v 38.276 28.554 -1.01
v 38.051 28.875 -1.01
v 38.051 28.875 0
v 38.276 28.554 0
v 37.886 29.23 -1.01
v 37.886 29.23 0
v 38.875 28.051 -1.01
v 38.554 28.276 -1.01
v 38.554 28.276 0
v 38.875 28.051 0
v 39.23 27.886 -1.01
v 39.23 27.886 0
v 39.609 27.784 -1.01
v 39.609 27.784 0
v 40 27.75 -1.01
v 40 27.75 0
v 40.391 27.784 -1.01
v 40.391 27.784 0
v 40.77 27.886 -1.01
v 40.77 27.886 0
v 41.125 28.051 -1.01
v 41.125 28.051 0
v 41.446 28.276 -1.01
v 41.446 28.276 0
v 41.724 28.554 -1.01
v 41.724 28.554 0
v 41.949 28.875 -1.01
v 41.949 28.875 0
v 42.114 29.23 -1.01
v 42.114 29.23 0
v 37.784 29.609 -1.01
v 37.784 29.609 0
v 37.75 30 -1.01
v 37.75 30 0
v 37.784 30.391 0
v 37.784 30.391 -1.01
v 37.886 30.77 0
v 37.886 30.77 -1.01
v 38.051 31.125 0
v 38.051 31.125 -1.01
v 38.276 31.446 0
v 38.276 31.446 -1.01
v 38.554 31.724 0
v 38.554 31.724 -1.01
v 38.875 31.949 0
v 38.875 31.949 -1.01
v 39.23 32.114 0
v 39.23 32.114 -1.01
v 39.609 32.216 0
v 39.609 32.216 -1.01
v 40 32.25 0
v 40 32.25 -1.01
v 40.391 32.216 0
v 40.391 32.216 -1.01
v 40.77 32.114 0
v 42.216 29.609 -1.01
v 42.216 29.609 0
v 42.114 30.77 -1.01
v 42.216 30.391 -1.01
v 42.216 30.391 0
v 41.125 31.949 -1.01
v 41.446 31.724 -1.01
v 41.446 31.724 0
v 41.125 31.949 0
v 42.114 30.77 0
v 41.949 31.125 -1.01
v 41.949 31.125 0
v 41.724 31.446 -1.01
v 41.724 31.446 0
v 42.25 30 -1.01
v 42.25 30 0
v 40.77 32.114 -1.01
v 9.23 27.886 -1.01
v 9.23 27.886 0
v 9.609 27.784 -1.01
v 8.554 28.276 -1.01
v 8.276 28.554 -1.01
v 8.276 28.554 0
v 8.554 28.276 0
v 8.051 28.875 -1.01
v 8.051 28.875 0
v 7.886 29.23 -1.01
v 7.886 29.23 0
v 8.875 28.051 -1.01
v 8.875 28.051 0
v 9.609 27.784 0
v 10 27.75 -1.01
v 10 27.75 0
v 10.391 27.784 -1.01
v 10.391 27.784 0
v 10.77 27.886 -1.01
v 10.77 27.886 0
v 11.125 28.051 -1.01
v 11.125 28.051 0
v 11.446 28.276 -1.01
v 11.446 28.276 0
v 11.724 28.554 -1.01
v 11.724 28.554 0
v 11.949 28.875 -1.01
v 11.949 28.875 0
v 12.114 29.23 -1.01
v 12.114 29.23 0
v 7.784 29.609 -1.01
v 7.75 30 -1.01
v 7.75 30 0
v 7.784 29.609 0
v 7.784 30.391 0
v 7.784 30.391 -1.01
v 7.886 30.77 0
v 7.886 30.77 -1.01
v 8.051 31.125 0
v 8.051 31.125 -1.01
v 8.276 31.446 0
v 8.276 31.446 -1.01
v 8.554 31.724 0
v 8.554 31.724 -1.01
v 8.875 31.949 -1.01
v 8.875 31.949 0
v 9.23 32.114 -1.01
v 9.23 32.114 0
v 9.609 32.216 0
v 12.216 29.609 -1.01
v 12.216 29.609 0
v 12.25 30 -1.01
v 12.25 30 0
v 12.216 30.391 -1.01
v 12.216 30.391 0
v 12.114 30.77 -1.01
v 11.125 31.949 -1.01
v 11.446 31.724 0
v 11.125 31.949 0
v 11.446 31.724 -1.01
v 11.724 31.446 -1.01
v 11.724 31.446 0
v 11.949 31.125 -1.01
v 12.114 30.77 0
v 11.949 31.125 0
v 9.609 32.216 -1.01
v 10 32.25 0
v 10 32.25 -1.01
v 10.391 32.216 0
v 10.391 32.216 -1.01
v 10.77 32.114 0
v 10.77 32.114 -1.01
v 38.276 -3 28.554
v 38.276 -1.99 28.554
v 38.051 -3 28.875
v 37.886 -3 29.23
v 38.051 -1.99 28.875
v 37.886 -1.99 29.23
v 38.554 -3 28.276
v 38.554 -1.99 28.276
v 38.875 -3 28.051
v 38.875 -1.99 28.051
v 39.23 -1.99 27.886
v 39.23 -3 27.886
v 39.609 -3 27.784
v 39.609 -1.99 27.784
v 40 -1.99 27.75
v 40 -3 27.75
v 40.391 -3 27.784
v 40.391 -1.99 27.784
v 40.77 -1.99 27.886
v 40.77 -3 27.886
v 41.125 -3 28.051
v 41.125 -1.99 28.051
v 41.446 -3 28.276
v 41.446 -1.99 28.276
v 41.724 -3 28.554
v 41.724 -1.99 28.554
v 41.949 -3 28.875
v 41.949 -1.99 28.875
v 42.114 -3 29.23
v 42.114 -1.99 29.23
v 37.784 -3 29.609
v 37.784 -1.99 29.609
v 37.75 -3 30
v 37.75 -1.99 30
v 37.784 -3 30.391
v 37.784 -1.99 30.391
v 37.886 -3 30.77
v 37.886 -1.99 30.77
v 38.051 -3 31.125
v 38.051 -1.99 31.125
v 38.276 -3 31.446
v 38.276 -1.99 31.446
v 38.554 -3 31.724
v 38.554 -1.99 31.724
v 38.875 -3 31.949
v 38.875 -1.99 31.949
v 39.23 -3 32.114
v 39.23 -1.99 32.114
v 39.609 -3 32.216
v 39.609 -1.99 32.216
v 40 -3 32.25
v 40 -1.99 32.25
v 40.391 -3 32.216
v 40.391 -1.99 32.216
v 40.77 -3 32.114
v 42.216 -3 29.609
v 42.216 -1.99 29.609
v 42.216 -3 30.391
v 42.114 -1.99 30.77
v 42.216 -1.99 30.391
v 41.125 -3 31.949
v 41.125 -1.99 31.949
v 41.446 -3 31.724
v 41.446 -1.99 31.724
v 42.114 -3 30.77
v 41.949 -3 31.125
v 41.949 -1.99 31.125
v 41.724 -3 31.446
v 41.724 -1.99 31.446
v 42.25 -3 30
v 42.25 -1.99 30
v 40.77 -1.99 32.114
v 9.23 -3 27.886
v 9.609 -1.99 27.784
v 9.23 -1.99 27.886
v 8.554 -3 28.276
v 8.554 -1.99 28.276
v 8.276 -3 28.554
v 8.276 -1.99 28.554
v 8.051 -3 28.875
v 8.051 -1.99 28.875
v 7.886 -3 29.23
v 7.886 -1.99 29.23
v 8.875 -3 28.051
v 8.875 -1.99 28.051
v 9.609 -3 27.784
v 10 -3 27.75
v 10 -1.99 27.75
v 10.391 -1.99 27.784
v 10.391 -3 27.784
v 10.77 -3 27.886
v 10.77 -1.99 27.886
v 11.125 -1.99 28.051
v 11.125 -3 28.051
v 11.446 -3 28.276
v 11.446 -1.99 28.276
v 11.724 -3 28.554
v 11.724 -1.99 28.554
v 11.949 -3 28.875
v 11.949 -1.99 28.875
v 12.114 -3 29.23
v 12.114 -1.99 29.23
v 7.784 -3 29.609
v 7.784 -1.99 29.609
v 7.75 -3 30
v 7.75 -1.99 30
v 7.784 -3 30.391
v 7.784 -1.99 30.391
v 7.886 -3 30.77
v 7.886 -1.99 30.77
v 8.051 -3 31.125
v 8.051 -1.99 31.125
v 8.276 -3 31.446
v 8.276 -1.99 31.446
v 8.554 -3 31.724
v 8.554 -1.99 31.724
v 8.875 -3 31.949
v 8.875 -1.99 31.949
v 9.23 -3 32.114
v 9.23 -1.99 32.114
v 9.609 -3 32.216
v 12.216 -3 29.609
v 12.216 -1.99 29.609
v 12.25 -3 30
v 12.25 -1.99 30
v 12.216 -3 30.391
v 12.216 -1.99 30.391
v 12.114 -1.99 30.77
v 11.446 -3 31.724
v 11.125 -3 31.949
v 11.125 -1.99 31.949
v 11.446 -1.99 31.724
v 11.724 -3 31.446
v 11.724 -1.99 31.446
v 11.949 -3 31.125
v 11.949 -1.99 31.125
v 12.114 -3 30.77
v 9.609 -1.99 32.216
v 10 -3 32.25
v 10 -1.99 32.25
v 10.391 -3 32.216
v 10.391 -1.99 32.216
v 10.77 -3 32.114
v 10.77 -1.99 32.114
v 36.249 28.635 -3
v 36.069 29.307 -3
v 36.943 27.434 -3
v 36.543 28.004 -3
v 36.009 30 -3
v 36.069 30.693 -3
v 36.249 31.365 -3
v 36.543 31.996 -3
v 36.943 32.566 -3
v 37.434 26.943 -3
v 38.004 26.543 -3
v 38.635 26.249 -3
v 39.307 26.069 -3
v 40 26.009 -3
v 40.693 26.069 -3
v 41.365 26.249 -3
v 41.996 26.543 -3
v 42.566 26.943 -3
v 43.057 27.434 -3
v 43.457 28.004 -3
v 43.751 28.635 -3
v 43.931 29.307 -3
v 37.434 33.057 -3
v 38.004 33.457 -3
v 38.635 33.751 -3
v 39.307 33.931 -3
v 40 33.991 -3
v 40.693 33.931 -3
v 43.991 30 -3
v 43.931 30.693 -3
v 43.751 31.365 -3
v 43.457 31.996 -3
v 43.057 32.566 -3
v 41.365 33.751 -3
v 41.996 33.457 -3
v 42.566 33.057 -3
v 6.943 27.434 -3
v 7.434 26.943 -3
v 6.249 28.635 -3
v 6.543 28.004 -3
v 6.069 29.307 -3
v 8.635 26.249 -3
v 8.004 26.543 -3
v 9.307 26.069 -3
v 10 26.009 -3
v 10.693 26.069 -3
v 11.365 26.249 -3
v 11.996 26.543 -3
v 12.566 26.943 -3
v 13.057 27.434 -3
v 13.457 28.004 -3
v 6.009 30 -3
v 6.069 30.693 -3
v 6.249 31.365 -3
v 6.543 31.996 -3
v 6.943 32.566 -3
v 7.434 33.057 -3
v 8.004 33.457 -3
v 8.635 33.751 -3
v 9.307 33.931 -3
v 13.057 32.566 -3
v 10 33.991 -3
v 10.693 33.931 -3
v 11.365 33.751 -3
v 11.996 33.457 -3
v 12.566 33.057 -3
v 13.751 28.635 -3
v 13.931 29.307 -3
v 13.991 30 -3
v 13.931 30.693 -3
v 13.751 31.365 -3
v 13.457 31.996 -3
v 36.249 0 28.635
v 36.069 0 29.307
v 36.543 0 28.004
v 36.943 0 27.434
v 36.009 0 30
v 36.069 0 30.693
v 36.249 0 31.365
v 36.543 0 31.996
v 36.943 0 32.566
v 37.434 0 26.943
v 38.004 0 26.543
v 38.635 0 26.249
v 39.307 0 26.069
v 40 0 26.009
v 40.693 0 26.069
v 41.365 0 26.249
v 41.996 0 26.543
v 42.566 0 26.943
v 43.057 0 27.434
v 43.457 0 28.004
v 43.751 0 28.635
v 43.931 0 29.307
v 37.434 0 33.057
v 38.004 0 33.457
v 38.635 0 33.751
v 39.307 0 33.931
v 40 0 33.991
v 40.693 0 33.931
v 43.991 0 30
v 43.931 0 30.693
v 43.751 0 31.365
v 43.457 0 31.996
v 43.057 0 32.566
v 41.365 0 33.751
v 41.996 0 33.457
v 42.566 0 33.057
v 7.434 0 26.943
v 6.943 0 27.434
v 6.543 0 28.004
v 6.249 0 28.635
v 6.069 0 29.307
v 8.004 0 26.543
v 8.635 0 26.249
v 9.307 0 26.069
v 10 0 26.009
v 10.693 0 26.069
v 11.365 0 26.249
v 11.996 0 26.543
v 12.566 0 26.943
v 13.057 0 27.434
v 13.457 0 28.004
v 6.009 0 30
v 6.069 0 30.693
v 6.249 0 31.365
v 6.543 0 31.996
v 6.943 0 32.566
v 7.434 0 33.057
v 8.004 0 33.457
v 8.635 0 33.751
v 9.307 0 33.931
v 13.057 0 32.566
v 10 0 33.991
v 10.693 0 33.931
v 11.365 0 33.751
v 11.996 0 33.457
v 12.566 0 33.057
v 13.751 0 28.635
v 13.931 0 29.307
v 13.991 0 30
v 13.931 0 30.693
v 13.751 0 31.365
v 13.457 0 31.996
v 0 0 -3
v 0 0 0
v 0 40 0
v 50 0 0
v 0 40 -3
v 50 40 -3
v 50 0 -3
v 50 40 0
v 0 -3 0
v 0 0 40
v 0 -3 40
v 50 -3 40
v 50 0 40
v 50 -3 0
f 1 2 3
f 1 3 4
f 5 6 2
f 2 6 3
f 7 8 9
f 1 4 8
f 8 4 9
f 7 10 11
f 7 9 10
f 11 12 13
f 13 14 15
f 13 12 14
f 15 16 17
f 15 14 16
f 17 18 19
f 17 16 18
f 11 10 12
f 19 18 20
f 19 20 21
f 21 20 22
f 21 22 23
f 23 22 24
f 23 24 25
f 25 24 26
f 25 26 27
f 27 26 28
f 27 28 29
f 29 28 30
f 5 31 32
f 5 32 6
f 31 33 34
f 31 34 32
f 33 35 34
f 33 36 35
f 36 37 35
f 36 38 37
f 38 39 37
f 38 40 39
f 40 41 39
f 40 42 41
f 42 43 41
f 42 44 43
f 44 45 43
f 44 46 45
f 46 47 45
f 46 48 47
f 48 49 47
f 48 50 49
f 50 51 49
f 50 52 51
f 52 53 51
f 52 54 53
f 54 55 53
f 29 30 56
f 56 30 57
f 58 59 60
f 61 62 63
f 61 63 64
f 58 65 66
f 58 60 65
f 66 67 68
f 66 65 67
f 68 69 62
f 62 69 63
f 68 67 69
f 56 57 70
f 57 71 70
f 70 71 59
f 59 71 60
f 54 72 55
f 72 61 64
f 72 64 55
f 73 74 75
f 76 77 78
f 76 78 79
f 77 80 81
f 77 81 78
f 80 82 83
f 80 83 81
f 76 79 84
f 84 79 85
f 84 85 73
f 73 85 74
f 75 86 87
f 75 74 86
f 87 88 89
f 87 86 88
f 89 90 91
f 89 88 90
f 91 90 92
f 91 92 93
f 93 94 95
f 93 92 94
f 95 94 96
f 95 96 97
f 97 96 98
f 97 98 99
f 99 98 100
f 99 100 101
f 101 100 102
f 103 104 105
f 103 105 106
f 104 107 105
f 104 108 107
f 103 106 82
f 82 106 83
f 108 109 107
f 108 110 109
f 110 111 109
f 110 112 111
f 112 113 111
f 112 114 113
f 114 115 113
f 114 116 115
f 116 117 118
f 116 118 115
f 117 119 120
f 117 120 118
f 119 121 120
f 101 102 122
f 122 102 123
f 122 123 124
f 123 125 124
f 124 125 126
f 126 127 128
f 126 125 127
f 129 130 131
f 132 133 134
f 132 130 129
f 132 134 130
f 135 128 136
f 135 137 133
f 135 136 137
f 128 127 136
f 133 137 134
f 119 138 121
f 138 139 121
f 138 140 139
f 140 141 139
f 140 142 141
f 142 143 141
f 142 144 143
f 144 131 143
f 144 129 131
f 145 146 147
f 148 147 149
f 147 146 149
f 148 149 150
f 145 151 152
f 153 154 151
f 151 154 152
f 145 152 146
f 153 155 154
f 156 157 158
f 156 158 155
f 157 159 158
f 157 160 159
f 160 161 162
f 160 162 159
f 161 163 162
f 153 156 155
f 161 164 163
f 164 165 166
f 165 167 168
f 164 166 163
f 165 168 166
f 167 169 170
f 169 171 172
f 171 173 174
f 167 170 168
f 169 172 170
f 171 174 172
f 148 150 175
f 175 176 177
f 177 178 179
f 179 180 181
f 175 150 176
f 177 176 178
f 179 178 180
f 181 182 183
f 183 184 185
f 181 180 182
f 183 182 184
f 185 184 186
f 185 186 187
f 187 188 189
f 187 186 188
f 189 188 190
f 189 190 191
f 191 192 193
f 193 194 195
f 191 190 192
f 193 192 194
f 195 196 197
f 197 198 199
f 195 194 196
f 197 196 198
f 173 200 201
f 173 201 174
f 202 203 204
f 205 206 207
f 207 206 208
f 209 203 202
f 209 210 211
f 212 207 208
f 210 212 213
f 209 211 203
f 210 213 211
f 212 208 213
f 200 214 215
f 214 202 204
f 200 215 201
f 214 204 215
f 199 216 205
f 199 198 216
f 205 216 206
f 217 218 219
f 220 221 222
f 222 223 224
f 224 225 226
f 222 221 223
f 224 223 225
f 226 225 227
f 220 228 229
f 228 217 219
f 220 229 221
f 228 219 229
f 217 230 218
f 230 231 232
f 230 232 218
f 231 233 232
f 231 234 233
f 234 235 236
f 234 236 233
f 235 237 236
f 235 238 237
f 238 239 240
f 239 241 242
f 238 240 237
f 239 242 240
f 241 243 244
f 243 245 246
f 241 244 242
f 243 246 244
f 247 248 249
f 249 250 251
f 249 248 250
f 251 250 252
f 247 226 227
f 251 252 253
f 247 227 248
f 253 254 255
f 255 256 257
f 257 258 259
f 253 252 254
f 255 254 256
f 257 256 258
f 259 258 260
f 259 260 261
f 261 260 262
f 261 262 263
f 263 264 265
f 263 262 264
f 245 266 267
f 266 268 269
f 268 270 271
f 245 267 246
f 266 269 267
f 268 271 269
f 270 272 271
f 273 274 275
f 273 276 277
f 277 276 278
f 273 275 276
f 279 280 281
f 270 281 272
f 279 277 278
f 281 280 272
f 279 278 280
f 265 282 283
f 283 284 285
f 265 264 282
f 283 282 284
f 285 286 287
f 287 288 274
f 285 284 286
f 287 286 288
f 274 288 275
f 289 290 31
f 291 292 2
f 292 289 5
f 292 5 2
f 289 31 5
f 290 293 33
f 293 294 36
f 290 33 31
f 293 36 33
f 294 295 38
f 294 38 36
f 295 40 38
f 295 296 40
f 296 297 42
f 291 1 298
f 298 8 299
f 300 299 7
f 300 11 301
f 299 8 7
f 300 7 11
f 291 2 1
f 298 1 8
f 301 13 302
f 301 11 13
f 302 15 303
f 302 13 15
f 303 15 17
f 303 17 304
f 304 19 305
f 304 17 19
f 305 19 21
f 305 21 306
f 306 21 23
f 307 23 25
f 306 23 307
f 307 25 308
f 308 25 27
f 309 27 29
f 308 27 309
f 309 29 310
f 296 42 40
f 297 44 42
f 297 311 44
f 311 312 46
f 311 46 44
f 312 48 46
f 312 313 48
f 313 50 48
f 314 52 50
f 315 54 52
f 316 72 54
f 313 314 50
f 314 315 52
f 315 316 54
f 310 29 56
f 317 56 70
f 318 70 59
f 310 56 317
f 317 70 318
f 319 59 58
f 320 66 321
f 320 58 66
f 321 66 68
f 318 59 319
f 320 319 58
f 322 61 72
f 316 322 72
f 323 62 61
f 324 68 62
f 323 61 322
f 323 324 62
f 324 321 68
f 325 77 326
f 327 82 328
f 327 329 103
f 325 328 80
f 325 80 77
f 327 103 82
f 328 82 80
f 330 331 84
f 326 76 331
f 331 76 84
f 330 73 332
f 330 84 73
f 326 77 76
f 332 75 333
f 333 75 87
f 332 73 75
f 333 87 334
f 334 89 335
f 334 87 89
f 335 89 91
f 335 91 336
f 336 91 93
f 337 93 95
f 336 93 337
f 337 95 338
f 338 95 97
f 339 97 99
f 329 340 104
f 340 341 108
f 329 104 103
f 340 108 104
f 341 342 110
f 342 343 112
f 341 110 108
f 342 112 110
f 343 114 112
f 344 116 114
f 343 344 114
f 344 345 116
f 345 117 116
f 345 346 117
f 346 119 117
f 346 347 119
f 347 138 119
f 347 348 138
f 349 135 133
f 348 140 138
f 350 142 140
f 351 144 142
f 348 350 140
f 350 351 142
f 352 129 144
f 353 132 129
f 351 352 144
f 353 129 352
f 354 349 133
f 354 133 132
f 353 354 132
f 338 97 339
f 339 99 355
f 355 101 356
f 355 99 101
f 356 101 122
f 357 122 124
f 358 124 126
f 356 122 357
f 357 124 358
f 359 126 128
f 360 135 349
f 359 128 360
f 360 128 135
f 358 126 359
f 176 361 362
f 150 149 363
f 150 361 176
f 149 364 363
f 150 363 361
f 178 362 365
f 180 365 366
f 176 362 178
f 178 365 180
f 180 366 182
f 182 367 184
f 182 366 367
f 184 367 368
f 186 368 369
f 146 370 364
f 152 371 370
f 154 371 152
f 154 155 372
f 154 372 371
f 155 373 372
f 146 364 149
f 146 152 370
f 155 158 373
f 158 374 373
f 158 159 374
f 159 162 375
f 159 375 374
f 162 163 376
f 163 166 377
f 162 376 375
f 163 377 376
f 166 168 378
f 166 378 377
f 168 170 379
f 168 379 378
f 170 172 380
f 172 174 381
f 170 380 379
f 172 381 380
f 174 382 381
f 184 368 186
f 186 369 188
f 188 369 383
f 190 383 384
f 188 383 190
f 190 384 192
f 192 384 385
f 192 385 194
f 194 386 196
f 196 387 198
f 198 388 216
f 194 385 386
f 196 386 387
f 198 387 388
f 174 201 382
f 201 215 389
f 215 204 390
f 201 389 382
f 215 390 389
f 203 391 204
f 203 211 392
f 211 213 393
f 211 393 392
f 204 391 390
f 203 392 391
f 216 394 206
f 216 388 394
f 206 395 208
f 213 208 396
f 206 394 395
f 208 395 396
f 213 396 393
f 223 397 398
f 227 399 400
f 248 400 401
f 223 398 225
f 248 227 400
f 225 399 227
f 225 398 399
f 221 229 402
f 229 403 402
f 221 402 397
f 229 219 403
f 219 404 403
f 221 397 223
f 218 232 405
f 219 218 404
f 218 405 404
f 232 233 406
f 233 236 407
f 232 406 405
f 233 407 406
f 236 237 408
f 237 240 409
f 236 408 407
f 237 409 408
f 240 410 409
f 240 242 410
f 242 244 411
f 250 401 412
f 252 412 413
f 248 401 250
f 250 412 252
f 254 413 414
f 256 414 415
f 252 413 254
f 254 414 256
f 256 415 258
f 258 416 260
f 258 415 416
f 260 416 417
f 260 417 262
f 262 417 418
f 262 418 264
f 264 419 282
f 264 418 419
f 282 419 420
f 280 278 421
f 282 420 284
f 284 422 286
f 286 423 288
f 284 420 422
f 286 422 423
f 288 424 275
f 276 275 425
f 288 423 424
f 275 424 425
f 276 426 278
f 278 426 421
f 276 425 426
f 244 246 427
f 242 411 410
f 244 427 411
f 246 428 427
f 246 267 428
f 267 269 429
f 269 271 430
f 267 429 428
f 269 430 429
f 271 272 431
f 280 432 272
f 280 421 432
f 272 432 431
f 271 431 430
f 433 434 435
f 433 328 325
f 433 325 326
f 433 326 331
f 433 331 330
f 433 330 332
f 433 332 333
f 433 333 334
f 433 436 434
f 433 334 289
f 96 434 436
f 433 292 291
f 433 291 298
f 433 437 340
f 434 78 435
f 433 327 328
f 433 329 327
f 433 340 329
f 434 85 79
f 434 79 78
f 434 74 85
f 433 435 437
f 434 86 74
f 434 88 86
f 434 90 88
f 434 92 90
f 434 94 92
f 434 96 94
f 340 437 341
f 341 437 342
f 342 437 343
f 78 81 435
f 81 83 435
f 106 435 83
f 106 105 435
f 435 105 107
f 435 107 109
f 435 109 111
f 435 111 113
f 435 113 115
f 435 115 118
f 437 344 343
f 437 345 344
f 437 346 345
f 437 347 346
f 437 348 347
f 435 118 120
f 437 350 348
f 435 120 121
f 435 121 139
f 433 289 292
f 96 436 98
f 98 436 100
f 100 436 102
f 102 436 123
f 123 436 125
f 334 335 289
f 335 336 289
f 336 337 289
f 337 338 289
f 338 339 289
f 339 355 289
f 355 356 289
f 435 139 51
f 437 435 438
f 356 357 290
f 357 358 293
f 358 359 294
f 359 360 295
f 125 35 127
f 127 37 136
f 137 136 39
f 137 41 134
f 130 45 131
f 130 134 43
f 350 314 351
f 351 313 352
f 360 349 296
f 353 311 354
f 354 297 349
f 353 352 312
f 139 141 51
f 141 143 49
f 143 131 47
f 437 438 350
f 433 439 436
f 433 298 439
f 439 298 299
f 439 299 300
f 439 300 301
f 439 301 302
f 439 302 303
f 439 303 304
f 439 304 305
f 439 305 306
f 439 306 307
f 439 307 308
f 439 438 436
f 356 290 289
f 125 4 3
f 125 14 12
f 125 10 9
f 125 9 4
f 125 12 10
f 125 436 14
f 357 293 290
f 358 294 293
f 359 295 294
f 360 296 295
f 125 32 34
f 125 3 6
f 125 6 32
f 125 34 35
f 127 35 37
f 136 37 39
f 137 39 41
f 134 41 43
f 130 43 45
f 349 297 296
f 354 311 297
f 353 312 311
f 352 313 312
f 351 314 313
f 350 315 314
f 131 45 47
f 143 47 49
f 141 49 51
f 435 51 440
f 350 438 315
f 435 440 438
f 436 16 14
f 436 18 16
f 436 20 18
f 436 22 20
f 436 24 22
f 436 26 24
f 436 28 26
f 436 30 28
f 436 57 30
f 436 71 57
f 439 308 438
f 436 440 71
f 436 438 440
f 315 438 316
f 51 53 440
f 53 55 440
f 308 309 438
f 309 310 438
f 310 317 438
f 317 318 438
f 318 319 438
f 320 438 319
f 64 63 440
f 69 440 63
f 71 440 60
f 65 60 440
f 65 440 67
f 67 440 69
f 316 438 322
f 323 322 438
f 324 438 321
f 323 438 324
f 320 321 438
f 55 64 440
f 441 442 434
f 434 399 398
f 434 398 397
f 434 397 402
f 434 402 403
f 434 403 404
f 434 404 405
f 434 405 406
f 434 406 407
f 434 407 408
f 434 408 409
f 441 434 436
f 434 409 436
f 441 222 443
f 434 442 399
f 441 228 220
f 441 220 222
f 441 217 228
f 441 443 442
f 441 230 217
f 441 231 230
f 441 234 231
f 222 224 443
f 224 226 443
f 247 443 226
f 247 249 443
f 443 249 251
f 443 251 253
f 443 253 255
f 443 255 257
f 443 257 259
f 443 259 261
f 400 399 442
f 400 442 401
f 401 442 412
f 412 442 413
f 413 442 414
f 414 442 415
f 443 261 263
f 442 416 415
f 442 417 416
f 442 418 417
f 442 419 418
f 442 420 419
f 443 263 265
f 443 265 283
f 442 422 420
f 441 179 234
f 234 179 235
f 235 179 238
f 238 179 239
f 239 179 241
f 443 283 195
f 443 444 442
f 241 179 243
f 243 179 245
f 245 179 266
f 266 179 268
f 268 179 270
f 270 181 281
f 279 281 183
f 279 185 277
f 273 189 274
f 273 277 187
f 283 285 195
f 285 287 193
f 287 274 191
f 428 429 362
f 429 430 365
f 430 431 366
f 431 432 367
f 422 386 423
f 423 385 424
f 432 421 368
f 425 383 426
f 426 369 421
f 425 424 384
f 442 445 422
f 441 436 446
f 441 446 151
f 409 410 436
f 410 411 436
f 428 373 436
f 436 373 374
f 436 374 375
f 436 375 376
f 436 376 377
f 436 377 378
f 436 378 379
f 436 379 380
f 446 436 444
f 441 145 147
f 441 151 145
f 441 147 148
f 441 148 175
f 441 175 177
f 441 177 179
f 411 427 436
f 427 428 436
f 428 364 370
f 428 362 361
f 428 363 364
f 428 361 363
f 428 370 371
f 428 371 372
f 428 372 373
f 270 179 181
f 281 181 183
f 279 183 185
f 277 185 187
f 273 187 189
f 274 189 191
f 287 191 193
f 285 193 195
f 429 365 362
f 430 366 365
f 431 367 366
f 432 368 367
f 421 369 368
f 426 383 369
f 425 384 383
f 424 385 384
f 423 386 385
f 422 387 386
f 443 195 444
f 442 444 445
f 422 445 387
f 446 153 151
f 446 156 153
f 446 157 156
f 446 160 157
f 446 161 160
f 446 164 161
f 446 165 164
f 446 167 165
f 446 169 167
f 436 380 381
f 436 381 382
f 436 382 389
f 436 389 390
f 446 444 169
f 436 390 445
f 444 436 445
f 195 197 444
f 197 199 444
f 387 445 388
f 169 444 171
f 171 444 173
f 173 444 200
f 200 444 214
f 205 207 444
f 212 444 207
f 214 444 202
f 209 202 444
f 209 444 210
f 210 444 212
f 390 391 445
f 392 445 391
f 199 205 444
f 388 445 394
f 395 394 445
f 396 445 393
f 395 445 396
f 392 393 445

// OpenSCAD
// L-bracket parameters
width = 50;        // X direction
flange = 40;       // flange length (Y for horizontal, Z for vertical)
thickness = 3;     // plate thickness

// Hole parameters
hole_dia = 4.5;    // M4 through hole
csink_dia = 8;     // countersink diameter
csink_depth = 2;   // countersink depth
edge_offset = 10;  // distance from edge to hole center
hole_spacing = 30; // distance between two holes (symmetric about center)

module countersunk_hole() {
    // Through hole + countersink
    union() {
        // Through hole (tall enough to cut through)
        cylinder(d=hole_dia, h=thickness+2, center=true, $fn=36);
        // Countersink on top (positive Z side)
        translate([0, 0, thickness/2 - csink_depth + 0.01])
            cylinder(d1=hole_dia, d2=csink_dia, h=csink_depth, $fn=36);
    }
}

module horizontal_flange() {
    difference() {
        // Horizontal plate: X=[0,width], Y=[0,flange], Z=[-thickness,0]
        translate([0, 0, -thickness])
            cube([width, flange, thickness]);

        // Holes on horizontal flange
        // Center line X = width/2 = 25
        // Two holes at X = width/2 ± hole_spacing/2 = 10 and 40
        // Y = edge_offset from far edge: Y = flange - edge_offset = 30
        // Countersink faces downward (outside = -Z side)
        hole_x1 = (width - hole_spacing) / 2;
        hole_x2 = (width + hole_spacing) / 2;
        hole_y = flange - edge_offset;

        // Rotate so countersink faces -Z (outside of horizontal flange)
        translate([hole_x1, hole_y, -thickness/2])
            rotate([180, 0, 0])
                countersunk_hole();
        translate([hole_x2, hole_y, -thickness/2])
            rotate([180, 0, 0])
                countersunk_hole();
    }
}

module vertical_flange() {
    difference() {
        // Vertical plate: X=[0,width], Y=[-thickness,0], Z=[0,flange]
        translate([0, -thickness, 0])
            cube([width, thickness, flange]);

        // Holes on vertical flange
        // Center line X = width/2 = 25
        // Two holes at X = width/2 ± hole_spacing/2 = 10 and 40
        // Z = flange - edge_offset = 30
        // Countersink faces -Y (outside of vertical flange)
        hole_x1 = (width - hole_spacing) / 2;
        hole_x2 = (width + hole_spacing) / 2;
        hole_z = flange - edge_offset;

        // Rotate so countersink faces -Y (outside)
        translate([hole_x1, -thickness/2, hole_z])
            rotate([-90, 0, 0])
                countersunk_hole();
        translate([hole_x2, -thickness/2, hole_z])
            rotate([-90, 0, 0])
                countersunk_hole();
    }
}

// Assemble L-bracket
union() {
    horizontal_flange();
    vertical_flange();
}
